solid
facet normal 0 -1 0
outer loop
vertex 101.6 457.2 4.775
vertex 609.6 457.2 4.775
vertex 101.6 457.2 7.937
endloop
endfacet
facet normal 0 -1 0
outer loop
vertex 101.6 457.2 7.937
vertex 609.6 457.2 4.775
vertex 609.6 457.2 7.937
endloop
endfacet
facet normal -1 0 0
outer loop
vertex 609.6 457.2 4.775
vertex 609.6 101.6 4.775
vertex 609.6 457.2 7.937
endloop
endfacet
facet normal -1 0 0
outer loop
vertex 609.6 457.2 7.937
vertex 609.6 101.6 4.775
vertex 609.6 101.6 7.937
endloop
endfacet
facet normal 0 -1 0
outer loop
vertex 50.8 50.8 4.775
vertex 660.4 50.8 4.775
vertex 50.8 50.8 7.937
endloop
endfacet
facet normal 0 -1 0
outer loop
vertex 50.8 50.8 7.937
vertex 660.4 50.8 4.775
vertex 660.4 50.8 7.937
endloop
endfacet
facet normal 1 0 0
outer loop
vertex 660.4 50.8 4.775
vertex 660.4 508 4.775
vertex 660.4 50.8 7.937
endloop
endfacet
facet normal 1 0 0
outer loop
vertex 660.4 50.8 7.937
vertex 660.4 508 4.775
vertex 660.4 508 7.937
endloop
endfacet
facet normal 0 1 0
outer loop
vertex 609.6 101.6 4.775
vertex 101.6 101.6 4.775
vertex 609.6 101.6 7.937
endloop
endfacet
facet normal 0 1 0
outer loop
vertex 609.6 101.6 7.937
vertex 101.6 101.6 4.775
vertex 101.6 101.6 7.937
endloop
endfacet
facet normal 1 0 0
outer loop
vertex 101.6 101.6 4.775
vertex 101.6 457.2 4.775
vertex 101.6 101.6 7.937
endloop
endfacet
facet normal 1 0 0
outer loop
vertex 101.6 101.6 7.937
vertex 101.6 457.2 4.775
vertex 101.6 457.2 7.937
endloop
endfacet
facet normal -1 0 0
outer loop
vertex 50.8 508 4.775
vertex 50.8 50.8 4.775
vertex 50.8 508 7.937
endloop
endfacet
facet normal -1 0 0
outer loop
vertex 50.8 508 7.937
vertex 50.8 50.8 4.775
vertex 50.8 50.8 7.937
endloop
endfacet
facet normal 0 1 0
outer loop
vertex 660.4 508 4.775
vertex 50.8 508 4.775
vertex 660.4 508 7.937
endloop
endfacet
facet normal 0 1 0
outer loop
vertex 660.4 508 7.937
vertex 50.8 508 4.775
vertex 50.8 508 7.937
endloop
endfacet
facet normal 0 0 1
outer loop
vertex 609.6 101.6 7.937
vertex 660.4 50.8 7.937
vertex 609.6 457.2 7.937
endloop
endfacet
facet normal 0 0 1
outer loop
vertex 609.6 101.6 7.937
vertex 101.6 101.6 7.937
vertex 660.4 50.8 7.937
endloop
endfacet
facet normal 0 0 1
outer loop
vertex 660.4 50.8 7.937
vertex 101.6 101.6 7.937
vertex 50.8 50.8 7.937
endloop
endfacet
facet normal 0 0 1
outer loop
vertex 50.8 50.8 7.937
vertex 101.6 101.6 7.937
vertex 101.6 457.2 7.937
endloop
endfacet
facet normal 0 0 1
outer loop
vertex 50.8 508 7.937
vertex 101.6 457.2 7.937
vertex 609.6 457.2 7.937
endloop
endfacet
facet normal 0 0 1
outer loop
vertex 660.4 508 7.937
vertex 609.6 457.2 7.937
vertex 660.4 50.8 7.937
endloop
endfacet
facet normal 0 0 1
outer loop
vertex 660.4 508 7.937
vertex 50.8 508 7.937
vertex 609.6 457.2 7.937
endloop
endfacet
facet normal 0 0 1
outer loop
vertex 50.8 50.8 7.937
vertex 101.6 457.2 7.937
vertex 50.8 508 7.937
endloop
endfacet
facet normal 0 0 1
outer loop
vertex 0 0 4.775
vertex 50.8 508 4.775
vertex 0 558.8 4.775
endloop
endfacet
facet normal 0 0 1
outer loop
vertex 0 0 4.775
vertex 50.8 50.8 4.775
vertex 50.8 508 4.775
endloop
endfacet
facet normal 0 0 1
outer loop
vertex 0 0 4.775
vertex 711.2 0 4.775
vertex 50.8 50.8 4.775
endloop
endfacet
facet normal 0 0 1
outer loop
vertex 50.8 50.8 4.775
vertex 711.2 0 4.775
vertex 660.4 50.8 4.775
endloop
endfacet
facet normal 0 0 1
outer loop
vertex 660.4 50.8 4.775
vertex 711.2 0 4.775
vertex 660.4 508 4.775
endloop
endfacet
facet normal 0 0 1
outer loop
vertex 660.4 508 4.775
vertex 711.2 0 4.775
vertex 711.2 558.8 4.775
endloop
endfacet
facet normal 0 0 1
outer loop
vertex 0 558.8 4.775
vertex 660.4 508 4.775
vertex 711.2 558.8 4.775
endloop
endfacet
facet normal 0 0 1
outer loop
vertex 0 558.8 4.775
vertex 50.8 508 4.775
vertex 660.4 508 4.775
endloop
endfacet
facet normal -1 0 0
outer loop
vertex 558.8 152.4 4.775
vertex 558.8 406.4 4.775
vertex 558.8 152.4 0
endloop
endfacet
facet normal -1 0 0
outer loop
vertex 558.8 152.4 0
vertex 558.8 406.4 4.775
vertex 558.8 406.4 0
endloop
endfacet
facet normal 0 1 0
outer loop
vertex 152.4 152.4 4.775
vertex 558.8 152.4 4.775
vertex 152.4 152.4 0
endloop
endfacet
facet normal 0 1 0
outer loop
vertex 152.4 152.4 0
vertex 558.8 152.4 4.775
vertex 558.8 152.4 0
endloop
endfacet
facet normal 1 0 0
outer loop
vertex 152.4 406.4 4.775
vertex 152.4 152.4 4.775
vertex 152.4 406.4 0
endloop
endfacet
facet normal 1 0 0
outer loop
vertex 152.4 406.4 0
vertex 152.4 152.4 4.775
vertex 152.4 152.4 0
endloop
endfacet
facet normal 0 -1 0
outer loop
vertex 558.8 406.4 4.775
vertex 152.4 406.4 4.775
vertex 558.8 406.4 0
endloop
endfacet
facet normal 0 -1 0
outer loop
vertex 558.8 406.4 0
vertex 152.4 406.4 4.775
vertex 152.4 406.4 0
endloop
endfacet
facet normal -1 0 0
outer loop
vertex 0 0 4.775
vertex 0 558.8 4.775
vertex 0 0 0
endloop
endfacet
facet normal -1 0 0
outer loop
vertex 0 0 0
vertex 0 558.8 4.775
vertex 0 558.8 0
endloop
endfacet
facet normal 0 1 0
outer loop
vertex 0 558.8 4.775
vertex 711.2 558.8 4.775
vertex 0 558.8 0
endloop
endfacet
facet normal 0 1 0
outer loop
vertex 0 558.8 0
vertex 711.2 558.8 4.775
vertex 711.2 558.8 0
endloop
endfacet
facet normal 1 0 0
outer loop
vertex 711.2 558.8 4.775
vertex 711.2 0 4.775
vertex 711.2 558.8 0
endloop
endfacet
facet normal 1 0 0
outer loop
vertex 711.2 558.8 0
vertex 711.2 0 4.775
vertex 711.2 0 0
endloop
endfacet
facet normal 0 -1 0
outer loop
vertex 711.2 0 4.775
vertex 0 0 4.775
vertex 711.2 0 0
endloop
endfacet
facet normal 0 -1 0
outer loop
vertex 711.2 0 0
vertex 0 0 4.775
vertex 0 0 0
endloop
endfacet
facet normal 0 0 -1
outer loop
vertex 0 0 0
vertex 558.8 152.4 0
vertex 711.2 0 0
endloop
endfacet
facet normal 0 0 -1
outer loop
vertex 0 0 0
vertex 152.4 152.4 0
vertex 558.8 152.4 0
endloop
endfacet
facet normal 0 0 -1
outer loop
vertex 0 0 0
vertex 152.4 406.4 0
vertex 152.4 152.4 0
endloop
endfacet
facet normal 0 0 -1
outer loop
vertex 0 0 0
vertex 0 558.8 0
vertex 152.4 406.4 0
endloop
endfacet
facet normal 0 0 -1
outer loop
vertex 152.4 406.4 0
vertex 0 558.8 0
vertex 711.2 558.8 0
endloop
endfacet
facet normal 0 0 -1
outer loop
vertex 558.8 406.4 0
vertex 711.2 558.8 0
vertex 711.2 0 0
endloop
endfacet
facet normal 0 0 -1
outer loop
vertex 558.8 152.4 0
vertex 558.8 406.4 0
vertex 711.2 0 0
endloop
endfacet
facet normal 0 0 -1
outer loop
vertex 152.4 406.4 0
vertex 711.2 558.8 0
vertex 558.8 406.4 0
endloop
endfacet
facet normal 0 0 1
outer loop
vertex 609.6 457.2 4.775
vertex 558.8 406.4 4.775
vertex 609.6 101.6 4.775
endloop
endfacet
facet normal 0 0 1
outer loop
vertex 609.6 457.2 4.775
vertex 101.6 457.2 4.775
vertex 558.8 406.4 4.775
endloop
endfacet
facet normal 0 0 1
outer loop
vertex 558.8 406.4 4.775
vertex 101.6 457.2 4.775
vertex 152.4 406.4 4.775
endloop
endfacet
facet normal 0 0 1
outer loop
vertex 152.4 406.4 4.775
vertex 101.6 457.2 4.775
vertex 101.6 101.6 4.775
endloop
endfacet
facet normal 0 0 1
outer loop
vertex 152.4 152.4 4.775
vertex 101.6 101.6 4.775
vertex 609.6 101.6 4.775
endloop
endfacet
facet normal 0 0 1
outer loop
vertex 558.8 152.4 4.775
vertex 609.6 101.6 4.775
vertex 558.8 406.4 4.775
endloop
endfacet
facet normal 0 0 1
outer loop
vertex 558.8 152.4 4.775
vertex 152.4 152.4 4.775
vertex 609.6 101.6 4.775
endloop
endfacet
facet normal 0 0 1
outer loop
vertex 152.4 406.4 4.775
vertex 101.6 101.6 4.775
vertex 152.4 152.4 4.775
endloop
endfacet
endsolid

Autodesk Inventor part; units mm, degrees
ref_plane "YZ Plane" through (0, 0, 0) normal (1, 0, 0) x (0, 1, 0)
ref_plane "XZ Plane" through (0, 0, 0) normal (0, 1, 0) x (-1, 0, 0)
ref_plane "XY Plane" through (0, 0, 0) normal (0, 0, 1) x (1, 0, 0)
sketch "Sketch1" plane through (0, 0, 0) normal (0, 0, 1) x (1, 0, 0)
  line L0 (0, 0) -> (711.2, 0)
  line L1 (711.2, 0) -> (711.2, 558.8)
  line L2 (711.2, 558.8) -> (0, 558.8)
  line L3 (0, 558.8) -> (0, 0)
  line L4 (50.8, 508) -> (660.4, 508)
  line L5 (660.4, 508) -> (660.4, 50.8)
  line L6 (660.4, 50.8) -> (50.8, 50.8)
  line L7 (50.8, 50.8) -> (50.8, 508)
  line L8 (609.6, 457.2) -> (101.6, 457.2)
  line L9 (101.6, 457.2) -> (101.6, 101.6)
  line L10 (101.6, 101.6) -> (609.6, 101.6)
  line L11 (609.6, 101.6) -> (609.6, 457.2)
  line L12 (152.4, 406.4) -> (558.8, 406.4)
  line L13 (558.8, 406.4) -> (558.8, 152.4)
  line L14 (558.8, 152.4) -> (152.4, 152.4)
  line L15 (152.4, 152.4) -> (152.4, 406.4)
  dimension "d2" = 50.8
  dimension "d3" = 50.8
  dimension "d4" = 50.8
  dimension "d9" = 457.2
  dimension "d10" = 609.6
extrude "Extrusion1" add sketch "Sketch1" along normal blind 4.7752 contours L3 L2 L1 L0 | L4 L5 L6 L7 | L11 L10 L9 L8
extrude "Extrusion2" add sketch "Sketch1" along normal blind 7.9375 contours L4 L5 L6 L7
properties part number "square"
